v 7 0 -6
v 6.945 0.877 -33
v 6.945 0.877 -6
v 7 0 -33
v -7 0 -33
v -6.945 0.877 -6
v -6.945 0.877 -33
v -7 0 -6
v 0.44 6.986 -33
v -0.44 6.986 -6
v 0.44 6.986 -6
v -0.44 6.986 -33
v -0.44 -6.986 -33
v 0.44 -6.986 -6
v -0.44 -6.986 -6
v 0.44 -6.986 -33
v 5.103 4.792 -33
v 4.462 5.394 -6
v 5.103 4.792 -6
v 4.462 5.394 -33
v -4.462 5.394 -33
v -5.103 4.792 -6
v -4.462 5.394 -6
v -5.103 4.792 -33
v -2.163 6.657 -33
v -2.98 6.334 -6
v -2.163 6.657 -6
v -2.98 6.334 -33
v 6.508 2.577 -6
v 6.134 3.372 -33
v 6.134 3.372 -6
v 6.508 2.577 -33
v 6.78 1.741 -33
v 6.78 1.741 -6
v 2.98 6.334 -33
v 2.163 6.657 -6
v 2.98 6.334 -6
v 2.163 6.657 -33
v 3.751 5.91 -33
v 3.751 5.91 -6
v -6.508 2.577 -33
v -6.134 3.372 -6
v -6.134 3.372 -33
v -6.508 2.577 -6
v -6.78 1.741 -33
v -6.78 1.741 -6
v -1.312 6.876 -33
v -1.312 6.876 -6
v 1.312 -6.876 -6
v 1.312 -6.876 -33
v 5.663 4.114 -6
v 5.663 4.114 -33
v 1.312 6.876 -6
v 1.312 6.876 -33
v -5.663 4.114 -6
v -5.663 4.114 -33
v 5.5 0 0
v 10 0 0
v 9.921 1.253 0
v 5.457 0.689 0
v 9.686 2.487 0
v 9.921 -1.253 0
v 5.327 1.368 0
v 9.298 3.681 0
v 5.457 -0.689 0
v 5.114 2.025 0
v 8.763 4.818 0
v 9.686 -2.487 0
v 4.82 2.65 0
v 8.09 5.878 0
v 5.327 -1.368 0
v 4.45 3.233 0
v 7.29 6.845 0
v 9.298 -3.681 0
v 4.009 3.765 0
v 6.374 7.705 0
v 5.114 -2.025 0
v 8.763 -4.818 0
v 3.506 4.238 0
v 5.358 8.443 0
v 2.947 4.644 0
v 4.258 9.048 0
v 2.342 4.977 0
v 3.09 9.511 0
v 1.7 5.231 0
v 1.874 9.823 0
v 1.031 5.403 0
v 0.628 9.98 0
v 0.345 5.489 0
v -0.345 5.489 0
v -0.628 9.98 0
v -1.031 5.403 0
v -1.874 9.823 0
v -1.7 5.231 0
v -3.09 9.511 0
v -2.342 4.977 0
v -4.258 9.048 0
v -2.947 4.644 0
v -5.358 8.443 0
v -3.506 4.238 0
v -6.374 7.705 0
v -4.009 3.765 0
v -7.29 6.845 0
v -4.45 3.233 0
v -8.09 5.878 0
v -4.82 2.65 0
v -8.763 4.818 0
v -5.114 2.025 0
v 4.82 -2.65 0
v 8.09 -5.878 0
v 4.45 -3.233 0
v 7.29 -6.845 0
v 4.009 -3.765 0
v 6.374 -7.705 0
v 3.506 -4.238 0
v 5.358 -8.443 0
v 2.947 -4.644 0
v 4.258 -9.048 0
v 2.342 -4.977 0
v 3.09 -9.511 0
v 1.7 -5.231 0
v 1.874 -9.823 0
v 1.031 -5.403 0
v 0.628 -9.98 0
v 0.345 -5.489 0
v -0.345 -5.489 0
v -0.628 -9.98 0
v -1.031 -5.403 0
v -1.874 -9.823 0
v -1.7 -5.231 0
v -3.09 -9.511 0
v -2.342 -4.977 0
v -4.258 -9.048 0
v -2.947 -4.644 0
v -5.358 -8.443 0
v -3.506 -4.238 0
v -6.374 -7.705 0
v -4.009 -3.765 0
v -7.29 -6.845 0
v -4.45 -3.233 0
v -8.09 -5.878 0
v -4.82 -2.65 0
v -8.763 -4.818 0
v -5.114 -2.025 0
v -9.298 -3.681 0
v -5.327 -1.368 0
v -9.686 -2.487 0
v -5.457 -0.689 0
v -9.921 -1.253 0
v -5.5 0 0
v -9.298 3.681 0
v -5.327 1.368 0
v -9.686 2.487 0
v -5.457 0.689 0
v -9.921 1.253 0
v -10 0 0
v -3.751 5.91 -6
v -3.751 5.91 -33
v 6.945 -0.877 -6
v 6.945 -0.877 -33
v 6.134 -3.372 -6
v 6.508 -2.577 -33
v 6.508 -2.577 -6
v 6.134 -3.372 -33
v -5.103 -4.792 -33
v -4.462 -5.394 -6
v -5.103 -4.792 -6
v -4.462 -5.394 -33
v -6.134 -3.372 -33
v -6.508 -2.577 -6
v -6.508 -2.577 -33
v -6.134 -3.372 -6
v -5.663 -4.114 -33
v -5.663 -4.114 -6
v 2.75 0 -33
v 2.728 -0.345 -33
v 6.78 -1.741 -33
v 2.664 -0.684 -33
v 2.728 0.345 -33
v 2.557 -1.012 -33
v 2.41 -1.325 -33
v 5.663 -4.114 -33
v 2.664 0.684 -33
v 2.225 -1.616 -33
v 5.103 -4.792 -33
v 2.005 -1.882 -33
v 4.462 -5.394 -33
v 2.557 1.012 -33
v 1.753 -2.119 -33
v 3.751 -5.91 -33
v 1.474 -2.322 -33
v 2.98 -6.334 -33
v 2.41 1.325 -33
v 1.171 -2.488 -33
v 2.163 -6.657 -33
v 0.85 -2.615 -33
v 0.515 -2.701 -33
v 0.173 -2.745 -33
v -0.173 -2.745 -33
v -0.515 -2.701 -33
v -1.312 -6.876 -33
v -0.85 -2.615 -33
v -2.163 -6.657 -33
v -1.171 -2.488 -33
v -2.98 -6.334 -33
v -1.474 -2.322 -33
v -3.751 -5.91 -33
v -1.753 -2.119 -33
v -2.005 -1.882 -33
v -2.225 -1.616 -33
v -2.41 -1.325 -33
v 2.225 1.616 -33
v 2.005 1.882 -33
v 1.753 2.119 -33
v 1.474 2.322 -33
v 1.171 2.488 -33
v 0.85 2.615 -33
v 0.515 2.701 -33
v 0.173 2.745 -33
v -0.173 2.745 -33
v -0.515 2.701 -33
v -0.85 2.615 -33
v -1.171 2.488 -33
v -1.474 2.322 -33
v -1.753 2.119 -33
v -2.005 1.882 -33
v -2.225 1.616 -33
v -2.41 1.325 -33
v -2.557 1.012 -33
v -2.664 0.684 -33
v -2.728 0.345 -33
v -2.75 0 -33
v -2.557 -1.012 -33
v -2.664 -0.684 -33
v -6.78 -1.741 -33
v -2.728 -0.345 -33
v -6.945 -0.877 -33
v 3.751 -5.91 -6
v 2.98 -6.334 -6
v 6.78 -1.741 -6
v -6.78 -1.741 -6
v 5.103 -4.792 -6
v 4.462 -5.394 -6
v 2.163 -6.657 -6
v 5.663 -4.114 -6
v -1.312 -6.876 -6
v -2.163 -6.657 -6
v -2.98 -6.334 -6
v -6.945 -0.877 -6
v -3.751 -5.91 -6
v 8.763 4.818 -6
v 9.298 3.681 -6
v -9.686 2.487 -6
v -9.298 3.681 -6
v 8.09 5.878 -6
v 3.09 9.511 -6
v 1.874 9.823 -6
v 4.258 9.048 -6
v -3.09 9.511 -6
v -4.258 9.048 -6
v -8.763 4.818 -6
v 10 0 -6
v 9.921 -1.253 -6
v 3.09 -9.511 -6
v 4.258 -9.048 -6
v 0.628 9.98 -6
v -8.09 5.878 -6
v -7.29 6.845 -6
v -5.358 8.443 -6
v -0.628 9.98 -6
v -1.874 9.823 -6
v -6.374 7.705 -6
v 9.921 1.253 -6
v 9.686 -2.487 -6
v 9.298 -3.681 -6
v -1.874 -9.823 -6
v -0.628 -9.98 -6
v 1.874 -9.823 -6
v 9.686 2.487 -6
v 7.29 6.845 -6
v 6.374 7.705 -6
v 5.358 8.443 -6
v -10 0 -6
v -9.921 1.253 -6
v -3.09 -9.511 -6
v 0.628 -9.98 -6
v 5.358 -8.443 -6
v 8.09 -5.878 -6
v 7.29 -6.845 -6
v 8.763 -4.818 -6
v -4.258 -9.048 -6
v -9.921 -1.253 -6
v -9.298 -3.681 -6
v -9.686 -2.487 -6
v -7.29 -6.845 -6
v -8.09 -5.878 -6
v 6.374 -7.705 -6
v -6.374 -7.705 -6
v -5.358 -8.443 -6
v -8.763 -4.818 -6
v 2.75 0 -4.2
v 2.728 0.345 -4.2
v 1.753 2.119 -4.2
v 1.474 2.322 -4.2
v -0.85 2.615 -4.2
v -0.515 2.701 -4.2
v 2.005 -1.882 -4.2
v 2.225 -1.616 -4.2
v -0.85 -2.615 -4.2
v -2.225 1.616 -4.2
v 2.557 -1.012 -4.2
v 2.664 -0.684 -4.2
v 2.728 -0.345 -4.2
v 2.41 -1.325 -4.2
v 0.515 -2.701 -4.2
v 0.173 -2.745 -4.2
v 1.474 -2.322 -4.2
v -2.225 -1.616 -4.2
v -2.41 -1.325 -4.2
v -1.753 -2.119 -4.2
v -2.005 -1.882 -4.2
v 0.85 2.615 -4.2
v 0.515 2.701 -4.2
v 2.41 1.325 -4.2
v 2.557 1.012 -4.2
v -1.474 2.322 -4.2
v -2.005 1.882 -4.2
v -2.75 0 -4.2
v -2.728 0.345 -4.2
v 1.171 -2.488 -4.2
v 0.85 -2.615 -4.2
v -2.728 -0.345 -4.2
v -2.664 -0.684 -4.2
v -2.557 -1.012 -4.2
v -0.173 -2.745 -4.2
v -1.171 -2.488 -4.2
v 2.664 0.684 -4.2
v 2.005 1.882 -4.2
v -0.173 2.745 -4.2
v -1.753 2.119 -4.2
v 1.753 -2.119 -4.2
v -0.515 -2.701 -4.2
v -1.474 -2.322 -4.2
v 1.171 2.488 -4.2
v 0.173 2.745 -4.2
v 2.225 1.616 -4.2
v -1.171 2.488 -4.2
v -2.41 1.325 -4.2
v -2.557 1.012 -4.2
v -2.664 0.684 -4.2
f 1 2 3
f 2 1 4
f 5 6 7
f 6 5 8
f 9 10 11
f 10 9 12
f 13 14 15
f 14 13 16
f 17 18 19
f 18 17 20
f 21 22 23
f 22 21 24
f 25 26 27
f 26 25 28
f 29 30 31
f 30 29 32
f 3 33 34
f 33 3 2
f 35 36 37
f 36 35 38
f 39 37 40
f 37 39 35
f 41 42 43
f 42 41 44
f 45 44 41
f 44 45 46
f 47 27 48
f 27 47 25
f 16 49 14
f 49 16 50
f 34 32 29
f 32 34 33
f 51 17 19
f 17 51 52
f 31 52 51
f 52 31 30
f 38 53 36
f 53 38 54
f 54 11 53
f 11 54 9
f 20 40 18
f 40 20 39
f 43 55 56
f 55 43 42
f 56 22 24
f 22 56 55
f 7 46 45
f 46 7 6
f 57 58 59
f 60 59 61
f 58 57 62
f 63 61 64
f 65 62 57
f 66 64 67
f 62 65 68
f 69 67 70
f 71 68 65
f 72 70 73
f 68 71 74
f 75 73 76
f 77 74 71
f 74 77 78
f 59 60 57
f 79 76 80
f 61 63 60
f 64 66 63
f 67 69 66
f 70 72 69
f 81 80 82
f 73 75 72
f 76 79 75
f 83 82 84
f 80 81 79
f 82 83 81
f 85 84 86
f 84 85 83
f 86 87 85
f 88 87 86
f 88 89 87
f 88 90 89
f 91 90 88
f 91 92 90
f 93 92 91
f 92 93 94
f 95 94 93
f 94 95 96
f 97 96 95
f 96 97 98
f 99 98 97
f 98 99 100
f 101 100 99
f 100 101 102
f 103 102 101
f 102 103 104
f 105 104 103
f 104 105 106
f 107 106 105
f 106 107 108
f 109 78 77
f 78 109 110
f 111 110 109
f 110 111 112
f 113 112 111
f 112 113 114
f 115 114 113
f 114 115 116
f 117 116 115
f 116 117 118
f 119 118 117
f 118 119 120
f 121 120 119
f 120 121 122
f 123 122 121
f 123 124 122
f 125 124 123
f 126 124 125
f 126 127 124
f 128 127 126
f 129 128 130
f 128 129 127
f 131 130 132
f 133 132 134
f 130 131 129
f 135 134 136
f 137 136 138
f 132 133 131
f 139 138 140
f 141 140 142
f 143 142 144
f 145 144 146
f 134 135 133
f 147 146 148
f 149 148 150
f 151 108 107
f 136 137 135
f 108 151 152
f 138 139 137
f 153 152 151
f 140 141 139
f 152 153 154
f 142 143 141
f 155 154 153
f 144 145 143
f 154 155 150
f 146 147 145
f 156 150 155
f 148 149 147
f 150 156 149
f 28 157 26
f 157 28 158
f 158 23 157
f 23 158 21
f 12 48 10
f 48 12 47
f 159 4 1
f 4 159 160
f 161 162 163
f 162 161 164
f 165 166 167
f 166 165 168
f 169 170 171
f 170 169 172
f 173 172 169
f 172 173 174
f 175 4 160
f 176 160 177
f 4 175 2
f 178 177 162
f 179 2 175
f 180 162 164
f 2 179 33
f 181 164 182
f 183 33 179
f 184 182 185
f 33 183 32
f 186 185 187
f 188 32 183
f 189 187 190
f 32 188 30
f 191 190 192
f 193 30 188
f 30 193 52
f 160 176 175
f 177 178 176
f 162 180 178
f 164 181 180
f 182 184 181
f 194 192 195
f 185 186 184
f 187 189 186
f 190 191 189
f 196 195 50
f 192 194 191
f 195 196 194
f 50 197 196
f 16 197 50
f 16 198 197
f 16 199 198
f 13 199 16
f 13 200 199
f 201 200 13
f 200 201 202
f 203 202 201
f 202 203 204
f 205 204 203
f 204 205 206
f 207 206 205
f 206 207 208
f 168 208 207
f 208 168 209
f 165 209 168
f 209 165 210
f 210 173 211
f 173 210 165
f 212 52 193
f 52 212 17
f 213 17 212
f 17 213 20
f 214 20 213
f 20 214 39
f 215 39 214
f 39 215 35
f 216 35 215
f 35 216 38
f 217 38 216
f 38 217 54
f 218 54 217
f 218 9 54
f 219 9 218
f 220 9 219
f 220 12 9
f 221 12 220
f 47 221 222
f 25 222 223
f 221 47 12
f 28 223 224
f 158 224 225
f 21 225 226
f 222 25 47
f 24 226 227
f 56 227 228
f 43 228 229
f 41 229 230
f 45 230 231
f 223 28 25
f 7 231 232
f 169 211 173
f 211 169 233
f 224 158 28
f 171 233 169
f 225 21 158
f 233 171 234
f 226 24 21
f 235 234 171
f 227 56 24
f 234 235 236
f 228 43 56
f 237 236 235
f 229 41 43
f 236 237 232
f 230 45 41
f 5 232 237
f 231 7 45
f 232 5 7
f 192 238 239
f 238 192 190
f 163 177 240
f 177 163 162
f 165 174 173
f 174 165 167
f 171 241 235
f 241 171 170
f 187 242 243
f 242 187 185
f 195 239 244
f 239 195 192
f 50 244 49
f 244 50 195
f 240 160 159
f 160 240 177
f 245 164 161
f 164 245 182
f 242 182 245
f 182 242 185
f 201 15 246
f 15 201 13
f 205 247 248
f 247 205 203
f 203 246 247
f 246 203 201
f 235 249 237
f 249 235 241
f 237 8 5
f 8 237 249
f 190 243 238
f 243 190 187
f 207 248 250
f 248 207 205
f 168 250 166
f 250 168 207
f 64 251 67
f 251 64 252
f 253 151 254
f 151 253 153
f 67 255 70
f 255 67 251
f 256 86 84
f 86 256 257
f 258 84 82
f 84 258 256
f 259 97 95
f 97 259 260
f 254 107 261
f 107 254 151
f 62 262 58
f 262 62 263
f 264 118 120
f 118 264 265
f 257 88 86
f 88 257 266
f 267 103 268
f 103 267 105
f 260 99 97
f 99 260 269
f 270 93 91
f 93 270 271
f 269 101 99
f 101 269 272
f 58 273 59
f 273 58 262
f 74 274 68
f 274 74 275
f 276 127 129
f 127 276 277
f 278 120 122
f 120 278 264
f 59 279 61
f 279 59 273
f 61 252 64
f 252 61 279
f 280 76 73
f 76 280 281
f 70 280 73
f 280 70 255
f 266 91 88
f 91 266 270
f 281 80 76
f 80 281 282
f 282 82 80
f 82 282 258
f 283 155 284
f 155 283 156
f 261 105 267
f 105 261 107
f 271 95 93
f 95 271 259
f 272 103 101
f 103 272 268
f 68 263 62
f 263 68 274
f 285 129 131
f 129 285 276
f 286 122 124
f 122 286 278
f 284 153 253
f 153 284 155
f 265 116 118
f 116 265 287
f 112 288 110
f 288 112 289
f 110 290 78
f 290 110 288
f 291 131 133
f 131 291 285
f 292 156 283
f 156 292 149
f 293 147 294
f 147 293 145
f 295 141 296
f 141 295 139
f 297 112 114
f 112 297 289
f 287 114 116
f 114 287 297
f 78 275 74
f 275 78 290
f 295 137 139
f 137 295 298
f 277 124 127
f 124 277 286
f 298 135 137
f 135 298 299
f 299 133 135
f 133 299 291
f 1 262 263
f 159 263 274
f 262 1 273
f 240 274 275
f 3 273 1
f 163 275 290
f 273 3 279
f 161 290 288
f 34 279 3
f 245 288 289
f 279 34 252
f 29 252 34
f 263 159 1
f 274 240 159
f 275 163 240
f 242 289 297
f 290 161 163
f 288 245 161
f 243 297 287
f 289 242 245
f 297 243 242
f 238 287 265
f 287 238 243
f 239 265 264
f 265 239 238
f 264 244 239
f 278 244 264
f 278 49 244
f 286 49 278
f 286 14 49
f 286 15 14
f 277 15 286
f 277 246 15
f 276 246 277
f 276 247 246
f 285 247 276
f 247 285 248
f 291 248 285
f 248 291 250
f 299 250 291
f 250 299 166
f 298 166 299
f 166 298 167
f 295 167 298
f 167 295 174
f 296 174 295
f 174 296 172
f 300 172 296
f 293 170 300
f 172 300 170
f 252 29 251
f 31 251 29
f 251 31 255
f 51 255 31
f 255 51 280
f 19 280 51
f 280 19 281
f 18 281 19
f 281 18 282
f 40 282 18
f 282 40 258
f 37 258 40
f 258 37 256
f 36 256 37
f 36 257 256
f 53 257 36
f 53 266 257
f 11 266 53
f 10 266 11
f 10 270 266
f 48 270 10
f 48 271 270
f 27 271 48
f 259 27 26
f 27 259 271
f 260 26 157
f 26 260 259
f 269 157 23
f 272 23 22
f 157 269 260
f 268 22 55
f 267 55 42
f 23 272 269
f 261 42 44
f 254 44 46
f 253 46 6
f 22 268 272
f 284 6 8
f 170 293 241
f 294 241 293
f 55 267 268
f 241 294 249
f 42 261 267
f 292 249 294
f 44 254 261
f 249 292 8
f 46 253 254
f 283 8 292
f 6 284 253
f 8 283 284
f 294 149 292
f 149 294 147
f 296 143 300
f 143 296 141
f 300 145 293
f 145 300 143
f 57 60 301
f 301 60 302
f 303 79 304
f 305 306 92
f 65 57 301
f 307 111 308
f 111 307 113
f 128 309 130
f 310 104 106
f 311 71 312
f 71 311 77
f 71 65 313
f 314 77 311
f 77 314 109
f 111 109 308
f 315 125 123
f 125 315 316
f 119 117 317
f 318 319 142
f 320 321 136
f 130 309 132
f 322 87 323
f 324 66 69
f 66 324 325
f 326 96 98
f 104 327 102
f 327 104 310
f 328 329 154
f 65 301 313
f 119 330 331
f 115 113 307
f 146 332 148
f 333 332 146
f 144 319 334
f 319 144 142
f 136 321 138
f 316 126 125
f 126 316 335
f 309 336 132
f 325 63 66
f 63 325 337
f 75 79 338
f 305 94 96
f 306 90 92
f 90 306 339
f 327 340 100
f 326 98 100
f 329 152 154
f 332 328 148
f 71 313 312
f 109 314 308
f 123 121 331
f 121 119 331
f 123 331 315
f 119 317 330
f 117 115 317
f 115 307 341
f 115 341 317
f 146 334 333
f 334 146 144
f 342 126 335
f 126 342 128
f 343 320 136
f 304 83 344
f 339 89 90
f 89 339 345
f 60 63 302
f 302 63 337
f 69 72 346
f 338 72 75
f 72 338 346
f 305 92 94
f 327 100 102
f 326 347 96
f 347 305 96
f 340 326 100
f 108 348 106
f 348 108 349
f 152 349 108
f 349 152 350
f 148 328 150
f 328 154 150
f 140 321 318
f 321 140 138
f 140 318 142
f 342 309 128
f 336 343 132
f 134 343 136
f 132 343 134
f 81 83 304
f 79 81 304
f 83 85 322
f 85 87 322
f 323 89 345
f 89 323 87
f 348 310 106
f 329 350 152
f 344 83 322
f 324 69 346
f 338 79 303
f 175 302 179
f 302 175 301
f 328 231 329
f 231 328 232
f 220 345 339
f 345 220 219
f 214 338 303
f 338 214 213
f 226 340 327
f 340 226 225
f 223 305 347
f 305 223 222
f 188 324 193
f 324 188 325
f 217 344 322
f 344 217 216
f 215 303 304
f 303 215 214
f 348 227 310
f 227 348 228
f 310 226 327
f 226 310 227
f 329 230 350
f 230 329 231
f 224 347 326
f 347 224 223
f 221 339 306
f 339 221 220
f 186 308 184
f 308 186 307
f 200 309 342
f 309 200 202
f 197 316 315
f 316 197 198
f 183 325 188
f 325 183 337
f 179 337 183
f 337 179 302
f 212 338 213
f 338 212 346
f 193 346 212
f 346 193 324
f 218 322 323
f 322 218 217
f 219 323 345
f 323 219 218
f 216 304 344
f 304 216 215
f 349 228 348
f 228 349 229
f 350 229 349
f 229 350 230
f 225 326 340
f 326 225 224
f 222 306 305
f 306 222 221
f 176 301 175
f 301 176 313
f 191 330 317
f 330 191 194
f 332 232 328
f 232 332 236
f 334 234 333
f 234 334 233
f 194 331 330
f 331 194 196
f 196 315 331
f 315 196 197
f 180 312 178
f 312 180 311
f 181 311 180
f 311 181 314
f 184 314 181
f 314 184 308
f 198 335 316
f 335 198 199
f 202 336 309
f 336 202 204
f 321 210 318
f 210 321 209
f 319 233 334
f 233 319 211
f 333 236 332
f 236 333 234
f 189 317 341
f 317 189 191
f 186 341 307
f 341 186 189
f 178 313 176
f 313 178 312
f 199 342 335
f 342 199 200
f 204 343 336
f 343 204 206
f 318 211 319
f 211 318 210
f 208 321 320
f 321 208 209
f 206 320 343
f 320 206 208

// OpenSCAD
$fn = 50;


difference() {
	union() {
		translate(v = [0, 0, -33.0000000000]) {
			cylinder(h = 33, r = 7.0000000000);
		}
		translate(v = [0, 0, -6.0000000000]) {
			cylinder(h = 6, r = 10.0000000000);
		}
	}
	union() {
		translate(v = [0, 0, 0]) {
			rotate(a = [0, 0, 0]) {
				difference() {
					union() {
						#translate(v = [0, 0, -33.0000000000]) {
							cylinder(h = 33, r = 2.2500000000);
						}
						#translate(v = [0, 0, -4.2000000000]) {
							cylinder(h = 4.2000000000, r1 = 2.7500000000, r2 = 5.5000000000);
						}
						#translate(v = [0, 0, -33.0000000000]) {
							cylinder(h = 33, r = 2.7500000000);
						}
						#translate(v = [0, 0, -33.0000000000]) {
							cylinder(h = 33, r = 2.2500000000);
						}
					}
					union();
				}
			}
		}
	}
}
